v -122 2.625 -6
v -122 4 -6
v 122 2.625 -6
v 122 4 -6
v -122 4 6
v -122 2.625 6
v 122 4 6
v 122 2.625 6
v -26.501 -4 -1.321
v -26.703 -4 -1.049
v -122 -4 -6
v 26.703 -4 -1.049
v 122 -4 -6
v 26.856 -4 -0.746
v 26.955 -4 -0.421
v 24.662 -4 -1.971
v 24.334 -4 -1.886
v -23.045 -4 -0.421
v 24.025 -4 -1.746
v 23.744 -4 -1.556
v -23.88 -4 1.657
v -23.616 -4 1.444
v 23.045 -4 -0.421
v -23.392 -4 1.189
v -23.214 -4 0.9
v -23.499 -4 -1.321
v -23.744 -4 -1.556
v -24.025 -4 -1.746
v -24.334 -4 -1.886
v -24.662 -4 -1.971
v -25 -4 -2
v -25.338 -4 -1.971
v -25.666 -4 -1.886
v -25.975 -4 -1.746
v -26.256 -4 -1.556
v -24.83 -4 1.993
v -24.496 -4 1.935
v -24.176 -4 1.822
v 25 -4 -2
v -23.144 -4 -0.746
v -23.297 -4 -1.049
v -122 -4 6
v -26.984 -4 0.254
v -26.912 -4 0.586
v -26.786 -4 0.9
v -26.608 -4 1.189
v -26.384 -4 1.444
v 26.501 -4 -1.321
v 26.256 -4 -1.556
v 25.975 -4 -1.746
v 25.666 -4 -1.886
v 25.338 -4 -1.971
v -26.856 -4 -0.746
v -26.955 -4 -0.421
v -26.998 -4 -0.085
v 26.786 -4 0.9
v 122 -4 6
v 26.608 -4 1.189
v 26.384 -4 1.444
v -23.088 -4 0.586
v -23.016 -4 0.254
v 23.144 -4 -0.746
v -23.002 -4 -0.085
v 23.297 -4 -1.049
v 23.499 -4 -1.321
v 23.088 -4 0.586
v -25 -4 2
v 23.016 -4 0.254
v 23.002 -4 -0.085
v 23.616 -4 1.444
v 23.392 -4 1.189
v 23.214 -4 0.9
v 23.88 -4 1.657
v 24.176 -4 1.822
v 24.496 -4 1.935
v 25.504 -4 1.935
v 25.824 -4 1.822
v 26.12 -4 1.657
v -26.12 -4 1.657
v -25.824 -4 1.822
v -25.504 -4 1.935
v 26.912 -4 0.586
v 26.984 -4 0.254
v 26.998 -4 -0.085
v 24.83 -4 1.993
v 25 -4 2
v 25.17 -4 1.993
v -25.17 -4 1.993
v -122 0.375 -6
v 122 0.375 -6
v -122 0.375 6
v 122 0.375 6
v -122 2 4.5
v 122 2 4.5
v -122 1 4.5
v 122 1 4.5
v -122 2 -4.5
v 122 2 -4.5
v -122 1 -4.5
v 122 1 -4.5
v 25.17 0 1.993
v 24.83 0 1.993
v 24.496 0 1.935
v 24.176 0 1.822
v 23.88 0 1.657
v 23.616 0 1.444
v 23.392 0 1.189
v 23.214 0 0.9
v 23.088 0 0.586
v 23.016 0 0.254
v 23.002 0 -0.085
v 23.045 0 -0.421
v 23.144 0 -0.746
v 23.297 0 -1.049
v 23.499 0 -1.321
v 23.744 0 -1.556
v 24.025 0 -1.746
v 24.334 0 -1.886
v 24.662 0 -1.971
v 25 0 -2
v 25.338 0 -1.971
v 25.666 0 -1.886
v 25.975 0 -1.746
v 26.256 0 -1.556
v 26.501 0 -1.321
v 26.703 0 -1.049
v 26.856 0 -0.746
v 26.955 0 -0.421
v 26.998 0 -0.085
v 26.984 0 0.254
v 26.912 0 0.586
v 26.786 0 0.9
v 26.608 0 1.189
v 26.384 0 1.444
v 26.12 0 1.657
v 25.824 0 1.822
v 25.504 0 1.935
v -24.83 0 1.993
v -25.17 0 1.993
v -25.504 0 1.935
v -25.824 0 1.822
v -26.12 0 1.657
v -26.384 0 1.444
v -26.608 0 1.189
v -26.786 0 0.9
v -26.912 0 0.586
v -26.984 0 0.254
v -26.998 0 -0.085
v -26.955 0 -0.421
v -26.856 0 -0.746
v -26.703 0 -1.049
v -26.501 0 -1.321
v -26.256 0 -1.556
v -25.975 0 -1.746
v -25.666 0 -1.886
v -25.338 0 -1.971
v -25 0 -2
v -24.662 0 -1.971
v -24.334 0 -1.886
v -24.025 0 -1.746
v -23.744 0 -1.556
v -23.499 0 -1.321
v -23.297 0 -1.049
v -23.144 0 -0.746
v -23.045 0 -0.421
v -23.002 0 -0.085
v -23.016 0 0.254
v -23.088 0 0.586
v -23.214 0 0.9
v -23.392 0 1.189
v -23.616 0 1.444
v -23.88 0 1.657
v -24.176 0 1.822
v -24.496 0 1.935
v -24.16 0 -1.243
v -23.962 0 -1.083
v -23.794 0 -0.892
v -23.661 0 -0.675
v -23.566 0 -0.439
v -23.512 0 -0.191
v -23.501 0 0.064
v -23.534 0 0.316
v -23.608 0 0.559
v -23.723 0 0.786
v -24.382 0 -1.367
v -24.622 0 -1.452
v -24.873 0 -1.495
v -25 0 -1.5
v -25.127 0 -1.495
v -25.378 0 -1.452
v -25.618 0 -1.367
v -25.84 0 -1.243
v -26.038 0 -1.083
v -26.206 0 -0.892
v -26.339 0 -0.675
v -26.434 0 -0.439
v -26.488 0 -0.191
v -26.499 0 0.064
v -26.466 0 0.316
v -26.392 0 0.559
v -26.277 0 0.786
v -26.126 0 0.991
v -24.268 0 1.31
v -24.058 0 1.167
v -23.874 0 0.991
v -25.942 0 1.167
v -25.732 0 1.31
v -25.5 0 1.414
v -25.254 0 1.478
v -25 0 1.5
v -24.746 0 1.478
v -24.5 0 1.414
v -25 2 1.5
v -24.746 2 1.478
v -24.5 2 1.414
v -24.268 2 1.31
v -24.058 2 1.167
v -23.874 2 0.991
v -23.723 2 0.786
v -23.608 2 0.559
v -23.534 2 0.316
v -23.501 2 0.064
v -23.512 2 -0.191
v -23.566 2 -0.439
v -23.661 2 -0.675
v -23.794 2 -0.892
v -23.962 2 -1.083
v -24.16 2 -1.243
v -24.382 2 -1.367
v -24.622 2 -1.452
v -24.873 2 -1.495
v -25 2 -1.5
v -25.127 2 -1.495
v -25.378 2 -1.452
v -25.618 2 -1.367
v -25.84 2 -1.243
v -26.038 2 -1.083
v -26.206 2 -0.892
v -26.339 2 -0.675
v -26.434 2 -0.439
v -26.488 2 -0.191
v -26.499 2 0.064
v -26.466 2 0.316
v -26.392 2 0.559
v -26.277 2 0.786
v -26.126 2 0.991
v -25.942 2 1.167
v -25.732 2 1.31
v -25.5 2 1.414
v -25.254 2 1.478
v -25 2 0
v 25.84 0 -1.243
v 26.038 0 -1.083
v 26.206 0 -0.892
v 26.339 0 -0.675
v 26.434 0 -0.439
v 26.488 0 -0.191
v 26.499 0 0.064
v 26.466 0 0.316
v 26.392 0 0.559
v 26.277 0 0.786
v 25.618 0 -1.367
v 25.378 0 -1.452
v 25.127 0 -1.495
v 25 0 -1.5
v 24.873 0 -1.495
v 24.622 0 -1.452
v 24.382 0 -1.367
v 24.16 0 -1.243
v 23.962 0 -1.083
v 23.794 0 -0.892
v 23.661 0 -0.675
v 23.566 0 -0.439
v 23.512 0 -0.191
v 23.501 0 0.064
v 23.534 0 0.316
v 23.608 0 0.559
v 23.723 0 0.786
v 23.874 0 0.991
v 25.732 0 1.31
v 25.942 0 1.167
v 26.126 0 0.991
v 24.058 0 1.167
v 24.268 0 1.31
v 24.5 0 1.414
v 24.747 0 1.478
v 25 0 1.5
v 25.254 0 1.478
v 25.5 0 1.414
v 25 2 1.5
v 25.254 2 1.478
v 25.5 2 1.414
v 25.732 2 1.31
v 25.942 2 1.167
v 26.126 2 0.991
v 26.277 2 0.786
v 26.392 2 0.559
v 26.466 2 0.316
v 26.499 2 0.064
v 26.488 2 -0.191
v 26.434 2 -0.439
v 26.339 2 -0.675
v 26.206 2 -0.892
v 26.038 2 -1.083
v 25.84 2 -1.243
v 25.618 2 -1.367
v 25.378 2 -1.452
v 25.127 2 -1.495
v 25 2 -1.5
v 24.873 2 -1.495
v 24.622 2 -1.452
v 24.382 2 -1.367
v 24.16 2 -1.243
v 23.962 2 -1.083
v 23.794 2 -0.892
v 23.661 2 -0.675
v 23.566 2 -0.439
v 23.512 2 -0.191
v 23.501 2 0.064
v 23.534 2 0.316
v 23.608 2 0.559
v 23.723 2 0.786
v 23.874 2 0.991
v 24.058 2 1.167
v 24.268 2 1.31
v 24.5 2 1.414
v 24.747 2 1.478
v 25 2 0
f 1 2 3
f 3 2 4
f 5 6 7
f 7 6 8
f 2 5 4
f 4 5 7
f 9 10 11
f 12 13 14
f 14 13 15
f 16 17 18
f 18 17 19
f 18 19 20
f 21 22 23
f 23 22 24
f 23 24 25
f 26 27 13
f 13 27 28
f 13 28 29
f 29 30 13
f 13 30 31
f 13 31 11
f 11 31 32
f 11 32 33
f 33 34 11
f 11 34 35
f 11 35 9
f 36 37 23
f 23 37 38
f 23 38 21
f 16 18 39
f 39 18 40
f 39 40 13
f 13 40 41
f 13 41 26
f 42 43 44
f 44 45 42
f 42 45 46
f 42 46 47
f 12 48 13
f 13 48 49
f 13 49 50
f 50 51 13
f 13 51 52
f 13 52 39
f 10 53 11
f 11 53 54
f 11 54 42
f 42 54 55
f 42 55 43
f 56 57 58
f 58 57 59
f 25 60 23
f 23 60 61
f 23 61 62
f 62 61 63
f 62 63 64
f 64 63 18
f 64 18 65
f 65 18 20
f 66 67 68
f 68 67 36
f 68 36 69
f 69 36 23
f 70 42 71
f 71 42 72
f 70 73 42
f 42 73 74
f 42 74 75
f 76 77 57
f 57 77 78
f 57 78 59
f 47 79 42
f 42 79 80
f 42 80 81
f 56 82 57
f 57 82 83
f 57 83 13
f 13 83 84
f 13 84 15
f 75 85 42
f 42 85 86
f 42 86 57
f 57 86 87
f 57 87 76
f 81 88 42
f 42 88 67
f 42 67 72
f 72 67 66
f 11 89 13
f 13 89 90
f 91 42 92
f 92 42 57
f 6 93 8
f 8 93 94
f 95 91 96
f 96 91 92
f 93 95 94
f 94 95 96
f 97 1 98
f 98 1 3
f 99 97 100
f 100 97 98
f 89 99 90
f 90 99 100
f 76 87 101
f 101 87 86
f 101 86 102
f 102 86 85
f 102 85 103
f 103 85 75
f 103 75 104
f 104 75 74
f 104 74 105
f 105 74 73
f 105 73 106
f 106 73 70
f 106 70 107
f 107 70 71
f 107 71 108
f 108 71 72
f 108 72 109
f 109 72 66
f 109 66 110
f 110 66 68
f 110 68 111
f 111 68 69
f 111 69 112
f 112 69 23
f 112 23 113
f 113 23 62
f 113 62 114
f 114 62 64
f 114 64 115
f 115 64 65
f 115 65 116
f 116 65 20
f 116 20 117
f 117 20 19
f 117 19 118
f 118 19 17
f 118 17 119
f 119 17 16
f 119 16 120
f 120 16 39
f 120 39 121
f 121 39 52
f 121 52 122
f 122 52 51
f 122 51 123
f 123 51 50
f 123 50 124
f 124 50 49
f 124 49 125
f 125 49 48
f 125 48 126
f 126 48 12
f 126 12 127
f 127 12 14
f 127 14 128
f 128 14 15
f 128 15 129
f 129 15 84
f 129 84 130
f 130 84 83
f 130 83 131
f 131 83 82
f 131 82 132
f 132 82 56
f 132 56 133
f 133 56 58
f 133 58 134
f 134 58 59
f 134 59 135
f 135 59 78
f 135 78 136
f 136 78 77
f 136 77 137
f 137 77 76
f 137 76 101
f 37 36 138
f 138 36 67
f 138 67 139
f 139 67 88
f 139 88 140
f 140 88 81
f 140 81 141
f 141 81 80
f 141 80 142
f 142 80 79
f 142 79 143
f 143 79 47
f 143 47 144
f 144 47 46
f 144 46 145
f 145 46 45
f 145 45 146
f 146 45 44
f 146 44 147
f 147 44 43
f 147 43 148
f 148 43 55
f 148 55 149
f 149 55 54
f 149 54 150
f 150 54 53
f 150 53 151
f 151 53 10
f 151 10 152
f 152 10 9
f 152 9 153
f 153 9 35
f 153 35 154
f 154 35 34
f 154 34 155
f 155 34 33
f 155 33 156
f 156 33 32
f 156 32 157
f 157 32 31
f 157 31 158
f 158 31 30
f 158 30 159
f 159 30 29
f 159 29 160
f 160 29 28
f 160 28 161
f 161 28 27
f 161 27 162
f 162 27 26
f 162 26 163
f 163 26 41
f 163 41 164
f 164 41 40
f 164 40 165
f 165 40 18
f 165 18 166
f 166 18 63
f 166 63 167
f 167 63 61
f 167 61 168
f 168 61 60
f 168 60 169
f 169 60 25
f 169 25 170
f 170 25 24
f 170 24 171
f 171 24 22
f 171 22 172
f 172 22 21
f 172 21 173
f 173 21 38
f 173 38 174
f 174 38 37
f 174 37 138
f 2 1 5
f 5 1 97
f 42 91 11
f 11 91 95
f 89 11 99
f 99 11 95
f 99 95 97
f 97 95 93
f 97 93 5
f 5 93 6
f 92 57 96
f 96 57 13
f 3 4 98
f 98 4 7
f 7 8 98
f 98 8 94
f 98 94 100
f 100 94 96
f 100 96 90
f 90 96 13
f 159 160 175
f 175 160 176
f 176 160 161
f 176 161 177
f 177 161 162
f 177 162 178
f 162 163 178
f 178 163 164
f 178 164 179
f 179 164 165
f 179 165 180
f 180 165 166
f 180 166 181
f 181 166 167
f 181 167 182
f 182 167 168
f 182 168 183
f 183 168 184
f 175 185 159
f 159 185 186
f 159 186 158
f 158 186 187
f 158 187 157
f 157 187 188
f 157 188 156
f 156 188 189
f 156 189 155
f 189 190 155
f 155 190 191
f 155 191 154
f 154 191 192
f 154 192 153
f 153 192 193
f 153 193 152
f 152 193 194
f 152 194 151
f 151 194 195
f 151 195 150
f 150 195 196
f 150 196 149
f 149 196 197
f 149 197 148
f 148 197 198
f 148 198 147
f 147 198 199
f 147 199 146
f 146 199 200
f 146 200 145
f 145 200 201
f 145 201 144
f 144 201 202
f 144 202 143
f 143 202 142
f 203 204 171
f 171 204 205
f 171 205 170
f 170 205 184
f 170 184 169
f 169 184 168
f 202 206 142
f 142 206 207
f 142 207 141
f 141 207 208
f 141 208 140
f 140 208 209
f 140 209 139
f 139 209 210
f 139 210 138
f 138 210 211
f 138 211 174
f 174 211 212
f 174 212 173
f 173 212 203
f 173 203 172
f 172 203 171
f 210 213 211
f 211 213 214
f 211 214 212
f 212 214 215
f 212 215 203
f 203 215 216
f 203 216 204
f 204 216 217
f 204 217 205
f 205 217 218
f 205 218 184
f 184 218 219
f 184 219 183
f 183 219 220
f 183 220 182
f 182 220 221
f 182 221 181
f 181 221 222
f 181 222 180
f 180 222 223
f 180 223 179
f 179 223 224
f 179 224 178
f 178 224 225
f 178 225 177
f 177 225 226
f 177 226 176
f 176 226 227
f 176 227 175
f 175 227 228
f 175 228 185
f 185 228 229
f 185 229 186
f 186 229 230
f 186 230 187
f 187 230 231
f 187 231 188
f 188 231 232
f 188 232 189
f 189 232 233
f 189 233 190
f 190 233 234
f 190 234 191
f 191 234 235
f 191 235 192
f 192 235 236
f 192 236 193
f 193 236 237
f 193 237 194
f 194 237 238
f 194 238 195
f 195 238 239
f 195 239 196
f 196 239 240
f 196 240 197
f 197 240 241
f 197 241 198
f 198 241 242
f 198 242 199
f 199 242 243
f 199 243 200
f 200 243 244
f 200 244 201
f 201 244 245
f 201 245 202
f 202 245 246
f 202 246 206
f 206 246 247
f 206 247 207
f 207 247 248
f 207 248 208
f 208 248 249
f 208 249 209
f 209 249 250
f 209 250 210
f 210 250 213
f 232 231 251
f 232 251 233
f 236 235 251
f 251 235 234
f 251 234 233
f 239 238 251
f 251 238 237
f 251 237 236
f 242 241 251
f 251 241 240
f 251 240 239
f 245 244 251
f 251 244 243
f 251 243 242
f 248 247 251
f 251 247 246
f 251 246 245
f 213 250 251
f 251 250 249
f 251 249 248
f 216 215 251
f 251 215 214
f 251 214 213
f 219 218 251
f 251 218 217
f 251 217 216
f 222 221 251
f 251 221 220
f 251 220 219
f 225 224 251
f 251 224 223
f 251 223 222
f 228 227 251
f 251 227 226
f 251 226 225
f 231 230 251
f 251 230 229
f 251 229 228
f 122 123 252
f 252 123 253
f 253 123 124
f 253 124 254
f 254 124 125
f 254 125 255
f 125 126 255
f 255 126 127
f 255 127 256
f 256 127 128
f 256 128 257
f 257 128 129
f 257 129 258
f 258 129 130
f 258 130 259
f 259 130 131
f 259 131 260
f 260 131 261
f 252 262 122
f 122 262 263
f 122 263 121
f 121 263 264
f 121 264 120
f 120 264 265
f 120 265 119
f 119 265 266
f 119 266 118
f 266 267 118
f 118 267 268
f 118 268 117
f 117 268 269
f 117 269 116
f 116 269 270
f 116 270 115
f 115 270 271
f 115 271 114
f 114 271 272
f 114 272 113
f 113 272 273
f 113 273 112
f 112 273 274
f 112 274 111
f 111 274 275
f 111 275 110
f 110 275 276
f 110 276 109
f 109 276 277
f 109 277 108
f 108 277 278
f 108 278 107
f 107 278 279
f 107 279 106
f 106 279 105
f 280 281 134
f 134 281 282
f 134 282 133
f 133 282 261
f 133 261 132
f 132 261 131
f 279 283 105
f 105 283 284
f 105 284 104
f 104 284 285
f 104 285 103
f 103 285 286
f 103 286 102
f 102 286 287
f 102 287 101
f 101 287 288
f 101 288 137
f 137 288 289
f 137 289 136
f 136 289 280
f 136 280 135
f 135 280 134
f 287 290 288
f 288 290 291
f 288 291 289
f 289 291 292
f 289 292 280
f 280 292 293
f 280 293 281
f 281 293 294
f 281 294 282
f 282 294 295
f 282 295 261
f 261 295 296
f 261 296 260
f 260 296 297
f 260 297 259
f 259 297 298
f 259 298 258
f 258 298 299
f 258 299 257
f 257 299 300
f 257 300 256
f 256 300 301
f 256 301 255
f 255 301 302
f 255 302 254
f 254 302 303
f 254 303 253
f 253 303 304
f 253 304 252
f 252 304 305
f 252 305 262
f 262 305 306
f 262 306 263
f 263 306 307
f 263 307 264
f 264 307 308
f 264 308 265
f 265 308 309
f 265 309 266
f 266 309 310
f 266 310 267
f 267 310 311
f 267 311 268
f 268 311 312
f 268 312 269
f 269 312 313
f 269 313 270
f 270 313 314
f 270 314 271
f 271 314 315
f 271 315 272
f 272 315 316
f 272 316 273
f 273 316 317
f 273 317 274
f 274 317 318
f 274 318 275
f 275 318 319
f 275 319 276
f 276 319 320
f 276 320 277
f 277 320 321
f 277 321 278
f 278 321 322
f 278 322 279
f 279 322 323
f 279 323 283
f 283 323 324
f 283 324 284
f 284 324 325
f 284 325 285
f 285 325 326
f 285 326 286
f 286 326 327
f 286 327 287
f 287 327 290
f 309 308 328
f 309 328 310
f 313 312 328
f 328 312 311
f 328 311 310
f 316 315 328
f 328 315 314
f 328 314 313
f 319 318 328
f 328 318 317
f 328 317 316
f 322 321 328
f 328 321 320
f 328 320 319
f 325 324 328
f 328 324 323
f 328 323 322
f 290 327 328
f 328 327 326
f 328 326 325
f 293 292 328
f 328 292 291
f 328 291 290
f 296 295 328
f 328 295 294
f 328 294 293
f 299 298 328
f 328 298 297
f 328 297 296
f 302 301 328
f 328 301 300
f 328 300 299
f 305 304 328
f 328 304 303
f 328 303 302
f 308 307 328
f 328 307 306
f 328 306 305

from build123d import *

# Parameters (mm, degrees)
SKETCH2_W           = 280
SKETCH2_H           = 12
SKETCH2_R           = 2
BOSS_EXTRUDE1_DEPTH = 4
CUT_EXTRUDE1_DEPTH  = 281
SKETCH5_R           = 2
BOSS_EXTRUDE2_DEPTH = 2
SKETCH4_W           = 18
SKETCH4_H           = 12
CUT_EXTRUDE2_DEPTH  = 9
BOSS_EXTRUDE3_REACH = 10
SKETCH7_R           = 2
SKETCH8_R           = 2
SKETCH8_R_2         = 1.5
BOSS_EXTRUDE4_DEPTH = 2


with BuildPart() as part:
    # Sketch2 → Boss-Extrude1 (new body, symmetric)
    with BuildSketch(Plane(origin=(0, 0, 0), x_dir=(1, 0, 0), z_dir=(0, 1, 0))):
        Rectangle(SKETCH2_W, SKETCH2_H)
        with Locations((-125, 0)):
            Circle(SKETCH2_R, mode=Mode.SUBTRACT)
        with Locations((-75, 0)):
            Circle(SKETCH2_R, mode=Mode.SUBTRACT)
        with Locations((-25, 0)):
            Circle(SKETCH2_R, mode=Mode.SUBTRACT)
        with Locations((25, 0)):
            Circle(SKETCH2_R, mode=Mode.SUBTRACT)
        with Locations((75, 0)):
            Circle(SKETCH2_R, mode=Mode.SUBTRACT)
        with Locations((125, 0)):
            Circle(SKETCH2_R, mode=Mode.SUBTRACT)
    extrude(amount=BOSS_EXTRUDE1_DEPTH, both=True)

    # Sketch3 → Cut-Extrude1 (cut, through all)
    with BuildSketch(Plane.ZY.offset(140)):
        Polygon((-6, 2.625), (-6, 0.375), (-4.5, 1), (-4.5, 2), align=None)
        Polygon((6, 2.625), (6, 0.375), (4.5, 1), (4.5, 2), align=None)
    extrude(amount=-CUT_EXTRUDE1_DEPTH, mode=Mode.SUBTRACT)

    # Sketch5 → Boss-Extrude2 (add)
    with BuildSketch(Plane(origin=(0, 4, 0), x_dir=(1, 0, 0), z_dir=(0, 1, 0))):
        with Locations((-75, 0)):
            Circle(SKETCH5_R)
        with Locations((-25, 0)):
            Circle(SKETCH5_R)
        with Locations((25, 0)):
            Circle(SKETCH5_R)
        with Locations((75, 0)):
            Circle(SKETCH5_R)
        with Locations((-125, 0)):
            Circle(SKETCH5_R)
        with Locations((125, 0)):
            Circle(SKETCH5_R)
    extrude(amount=-BOSS_EXTRUDE2_DEPTH)

    # Sketch4 → Cut-Extrude2 (cut, through all)
    with BuildSketch(Plane(origin=(0, 4, 0), x_dir=(1, 0, 0), z_dir=(0, 1, 0))):
        with Locations((-131, 0)):
            Rectangle(SKETCH4_W, SKETCH4_H)
    cut_extrude2 = extrude(amount=-CUT_EXTRUDE2_DEPTH, mode=Mode.SUBTRACT)

    # Mirror1: Cut-Extrude2 across plane
    add(cut_extrude2.mirror(Plane(origin=(0, 0, 0), x_dir=(0, 0, 1), z_dir=(1, 0, 0))), mode=Mode.SUBTRACT)

    # Sketch7 → Boss-Extrude3 (add, up to next)
    with BuildSketch(Plane.XZ.offset(4), mode=Mode.PRIVATE) as boss_extrude3_sk1:
        with Locations((-75, 0)):
            Circle(SKETCH7_R)
    boss_extrude3_tool1 = extrude(boss_extrude3_sk1.sketch, amount=-BOSS_EXTRUDE3_REACH, mode=Mode.PRIVATE) - part.part
    add(boss_extrude3_tool1.solids().sort_by_distance((-75, -4, 0))[0])
    # Sketch7 → Boss-Extrude3 (add, up to next)
    with BuildSketch(Plane.XZ.offset(4), mode=Mode.PRIVATE) as boss_extrude3_sk2:
        with Locations((75, 0)):
            Circle(SKETCH7_R)
    boss_extrude3_tool2 = extrude(boss_extrude3_sk2.sketch, amount=-BOSS_EXTRUDE3_REACH, mode=Mode.PRIVATE) - part.part
    add(boss_extrude3_tool2.solids().sort_by_distance((75, -4, 0))[0])

    # Sketch8 → Boss-Extrude4 (add)
    with BuildSketch(Plane.XZ.offset(-2)):
        with Locations((-25, 0)):
            Circle(SKETCH8_R)
        with Locations((-25, 0)):
            Circle(SKETCH8_R_2, mode=Mode.SUBTRACT)
        with Locations((25, 0)):
            Circle(SKETCH8_R)
        with Locations((25, 0)):
            Circle(SKETCH8_R_2, mode=Mode.SUBTRACT)
    extrude(amount=BOSS_EXTRUDE4_DEPTH)


solid = part.part
